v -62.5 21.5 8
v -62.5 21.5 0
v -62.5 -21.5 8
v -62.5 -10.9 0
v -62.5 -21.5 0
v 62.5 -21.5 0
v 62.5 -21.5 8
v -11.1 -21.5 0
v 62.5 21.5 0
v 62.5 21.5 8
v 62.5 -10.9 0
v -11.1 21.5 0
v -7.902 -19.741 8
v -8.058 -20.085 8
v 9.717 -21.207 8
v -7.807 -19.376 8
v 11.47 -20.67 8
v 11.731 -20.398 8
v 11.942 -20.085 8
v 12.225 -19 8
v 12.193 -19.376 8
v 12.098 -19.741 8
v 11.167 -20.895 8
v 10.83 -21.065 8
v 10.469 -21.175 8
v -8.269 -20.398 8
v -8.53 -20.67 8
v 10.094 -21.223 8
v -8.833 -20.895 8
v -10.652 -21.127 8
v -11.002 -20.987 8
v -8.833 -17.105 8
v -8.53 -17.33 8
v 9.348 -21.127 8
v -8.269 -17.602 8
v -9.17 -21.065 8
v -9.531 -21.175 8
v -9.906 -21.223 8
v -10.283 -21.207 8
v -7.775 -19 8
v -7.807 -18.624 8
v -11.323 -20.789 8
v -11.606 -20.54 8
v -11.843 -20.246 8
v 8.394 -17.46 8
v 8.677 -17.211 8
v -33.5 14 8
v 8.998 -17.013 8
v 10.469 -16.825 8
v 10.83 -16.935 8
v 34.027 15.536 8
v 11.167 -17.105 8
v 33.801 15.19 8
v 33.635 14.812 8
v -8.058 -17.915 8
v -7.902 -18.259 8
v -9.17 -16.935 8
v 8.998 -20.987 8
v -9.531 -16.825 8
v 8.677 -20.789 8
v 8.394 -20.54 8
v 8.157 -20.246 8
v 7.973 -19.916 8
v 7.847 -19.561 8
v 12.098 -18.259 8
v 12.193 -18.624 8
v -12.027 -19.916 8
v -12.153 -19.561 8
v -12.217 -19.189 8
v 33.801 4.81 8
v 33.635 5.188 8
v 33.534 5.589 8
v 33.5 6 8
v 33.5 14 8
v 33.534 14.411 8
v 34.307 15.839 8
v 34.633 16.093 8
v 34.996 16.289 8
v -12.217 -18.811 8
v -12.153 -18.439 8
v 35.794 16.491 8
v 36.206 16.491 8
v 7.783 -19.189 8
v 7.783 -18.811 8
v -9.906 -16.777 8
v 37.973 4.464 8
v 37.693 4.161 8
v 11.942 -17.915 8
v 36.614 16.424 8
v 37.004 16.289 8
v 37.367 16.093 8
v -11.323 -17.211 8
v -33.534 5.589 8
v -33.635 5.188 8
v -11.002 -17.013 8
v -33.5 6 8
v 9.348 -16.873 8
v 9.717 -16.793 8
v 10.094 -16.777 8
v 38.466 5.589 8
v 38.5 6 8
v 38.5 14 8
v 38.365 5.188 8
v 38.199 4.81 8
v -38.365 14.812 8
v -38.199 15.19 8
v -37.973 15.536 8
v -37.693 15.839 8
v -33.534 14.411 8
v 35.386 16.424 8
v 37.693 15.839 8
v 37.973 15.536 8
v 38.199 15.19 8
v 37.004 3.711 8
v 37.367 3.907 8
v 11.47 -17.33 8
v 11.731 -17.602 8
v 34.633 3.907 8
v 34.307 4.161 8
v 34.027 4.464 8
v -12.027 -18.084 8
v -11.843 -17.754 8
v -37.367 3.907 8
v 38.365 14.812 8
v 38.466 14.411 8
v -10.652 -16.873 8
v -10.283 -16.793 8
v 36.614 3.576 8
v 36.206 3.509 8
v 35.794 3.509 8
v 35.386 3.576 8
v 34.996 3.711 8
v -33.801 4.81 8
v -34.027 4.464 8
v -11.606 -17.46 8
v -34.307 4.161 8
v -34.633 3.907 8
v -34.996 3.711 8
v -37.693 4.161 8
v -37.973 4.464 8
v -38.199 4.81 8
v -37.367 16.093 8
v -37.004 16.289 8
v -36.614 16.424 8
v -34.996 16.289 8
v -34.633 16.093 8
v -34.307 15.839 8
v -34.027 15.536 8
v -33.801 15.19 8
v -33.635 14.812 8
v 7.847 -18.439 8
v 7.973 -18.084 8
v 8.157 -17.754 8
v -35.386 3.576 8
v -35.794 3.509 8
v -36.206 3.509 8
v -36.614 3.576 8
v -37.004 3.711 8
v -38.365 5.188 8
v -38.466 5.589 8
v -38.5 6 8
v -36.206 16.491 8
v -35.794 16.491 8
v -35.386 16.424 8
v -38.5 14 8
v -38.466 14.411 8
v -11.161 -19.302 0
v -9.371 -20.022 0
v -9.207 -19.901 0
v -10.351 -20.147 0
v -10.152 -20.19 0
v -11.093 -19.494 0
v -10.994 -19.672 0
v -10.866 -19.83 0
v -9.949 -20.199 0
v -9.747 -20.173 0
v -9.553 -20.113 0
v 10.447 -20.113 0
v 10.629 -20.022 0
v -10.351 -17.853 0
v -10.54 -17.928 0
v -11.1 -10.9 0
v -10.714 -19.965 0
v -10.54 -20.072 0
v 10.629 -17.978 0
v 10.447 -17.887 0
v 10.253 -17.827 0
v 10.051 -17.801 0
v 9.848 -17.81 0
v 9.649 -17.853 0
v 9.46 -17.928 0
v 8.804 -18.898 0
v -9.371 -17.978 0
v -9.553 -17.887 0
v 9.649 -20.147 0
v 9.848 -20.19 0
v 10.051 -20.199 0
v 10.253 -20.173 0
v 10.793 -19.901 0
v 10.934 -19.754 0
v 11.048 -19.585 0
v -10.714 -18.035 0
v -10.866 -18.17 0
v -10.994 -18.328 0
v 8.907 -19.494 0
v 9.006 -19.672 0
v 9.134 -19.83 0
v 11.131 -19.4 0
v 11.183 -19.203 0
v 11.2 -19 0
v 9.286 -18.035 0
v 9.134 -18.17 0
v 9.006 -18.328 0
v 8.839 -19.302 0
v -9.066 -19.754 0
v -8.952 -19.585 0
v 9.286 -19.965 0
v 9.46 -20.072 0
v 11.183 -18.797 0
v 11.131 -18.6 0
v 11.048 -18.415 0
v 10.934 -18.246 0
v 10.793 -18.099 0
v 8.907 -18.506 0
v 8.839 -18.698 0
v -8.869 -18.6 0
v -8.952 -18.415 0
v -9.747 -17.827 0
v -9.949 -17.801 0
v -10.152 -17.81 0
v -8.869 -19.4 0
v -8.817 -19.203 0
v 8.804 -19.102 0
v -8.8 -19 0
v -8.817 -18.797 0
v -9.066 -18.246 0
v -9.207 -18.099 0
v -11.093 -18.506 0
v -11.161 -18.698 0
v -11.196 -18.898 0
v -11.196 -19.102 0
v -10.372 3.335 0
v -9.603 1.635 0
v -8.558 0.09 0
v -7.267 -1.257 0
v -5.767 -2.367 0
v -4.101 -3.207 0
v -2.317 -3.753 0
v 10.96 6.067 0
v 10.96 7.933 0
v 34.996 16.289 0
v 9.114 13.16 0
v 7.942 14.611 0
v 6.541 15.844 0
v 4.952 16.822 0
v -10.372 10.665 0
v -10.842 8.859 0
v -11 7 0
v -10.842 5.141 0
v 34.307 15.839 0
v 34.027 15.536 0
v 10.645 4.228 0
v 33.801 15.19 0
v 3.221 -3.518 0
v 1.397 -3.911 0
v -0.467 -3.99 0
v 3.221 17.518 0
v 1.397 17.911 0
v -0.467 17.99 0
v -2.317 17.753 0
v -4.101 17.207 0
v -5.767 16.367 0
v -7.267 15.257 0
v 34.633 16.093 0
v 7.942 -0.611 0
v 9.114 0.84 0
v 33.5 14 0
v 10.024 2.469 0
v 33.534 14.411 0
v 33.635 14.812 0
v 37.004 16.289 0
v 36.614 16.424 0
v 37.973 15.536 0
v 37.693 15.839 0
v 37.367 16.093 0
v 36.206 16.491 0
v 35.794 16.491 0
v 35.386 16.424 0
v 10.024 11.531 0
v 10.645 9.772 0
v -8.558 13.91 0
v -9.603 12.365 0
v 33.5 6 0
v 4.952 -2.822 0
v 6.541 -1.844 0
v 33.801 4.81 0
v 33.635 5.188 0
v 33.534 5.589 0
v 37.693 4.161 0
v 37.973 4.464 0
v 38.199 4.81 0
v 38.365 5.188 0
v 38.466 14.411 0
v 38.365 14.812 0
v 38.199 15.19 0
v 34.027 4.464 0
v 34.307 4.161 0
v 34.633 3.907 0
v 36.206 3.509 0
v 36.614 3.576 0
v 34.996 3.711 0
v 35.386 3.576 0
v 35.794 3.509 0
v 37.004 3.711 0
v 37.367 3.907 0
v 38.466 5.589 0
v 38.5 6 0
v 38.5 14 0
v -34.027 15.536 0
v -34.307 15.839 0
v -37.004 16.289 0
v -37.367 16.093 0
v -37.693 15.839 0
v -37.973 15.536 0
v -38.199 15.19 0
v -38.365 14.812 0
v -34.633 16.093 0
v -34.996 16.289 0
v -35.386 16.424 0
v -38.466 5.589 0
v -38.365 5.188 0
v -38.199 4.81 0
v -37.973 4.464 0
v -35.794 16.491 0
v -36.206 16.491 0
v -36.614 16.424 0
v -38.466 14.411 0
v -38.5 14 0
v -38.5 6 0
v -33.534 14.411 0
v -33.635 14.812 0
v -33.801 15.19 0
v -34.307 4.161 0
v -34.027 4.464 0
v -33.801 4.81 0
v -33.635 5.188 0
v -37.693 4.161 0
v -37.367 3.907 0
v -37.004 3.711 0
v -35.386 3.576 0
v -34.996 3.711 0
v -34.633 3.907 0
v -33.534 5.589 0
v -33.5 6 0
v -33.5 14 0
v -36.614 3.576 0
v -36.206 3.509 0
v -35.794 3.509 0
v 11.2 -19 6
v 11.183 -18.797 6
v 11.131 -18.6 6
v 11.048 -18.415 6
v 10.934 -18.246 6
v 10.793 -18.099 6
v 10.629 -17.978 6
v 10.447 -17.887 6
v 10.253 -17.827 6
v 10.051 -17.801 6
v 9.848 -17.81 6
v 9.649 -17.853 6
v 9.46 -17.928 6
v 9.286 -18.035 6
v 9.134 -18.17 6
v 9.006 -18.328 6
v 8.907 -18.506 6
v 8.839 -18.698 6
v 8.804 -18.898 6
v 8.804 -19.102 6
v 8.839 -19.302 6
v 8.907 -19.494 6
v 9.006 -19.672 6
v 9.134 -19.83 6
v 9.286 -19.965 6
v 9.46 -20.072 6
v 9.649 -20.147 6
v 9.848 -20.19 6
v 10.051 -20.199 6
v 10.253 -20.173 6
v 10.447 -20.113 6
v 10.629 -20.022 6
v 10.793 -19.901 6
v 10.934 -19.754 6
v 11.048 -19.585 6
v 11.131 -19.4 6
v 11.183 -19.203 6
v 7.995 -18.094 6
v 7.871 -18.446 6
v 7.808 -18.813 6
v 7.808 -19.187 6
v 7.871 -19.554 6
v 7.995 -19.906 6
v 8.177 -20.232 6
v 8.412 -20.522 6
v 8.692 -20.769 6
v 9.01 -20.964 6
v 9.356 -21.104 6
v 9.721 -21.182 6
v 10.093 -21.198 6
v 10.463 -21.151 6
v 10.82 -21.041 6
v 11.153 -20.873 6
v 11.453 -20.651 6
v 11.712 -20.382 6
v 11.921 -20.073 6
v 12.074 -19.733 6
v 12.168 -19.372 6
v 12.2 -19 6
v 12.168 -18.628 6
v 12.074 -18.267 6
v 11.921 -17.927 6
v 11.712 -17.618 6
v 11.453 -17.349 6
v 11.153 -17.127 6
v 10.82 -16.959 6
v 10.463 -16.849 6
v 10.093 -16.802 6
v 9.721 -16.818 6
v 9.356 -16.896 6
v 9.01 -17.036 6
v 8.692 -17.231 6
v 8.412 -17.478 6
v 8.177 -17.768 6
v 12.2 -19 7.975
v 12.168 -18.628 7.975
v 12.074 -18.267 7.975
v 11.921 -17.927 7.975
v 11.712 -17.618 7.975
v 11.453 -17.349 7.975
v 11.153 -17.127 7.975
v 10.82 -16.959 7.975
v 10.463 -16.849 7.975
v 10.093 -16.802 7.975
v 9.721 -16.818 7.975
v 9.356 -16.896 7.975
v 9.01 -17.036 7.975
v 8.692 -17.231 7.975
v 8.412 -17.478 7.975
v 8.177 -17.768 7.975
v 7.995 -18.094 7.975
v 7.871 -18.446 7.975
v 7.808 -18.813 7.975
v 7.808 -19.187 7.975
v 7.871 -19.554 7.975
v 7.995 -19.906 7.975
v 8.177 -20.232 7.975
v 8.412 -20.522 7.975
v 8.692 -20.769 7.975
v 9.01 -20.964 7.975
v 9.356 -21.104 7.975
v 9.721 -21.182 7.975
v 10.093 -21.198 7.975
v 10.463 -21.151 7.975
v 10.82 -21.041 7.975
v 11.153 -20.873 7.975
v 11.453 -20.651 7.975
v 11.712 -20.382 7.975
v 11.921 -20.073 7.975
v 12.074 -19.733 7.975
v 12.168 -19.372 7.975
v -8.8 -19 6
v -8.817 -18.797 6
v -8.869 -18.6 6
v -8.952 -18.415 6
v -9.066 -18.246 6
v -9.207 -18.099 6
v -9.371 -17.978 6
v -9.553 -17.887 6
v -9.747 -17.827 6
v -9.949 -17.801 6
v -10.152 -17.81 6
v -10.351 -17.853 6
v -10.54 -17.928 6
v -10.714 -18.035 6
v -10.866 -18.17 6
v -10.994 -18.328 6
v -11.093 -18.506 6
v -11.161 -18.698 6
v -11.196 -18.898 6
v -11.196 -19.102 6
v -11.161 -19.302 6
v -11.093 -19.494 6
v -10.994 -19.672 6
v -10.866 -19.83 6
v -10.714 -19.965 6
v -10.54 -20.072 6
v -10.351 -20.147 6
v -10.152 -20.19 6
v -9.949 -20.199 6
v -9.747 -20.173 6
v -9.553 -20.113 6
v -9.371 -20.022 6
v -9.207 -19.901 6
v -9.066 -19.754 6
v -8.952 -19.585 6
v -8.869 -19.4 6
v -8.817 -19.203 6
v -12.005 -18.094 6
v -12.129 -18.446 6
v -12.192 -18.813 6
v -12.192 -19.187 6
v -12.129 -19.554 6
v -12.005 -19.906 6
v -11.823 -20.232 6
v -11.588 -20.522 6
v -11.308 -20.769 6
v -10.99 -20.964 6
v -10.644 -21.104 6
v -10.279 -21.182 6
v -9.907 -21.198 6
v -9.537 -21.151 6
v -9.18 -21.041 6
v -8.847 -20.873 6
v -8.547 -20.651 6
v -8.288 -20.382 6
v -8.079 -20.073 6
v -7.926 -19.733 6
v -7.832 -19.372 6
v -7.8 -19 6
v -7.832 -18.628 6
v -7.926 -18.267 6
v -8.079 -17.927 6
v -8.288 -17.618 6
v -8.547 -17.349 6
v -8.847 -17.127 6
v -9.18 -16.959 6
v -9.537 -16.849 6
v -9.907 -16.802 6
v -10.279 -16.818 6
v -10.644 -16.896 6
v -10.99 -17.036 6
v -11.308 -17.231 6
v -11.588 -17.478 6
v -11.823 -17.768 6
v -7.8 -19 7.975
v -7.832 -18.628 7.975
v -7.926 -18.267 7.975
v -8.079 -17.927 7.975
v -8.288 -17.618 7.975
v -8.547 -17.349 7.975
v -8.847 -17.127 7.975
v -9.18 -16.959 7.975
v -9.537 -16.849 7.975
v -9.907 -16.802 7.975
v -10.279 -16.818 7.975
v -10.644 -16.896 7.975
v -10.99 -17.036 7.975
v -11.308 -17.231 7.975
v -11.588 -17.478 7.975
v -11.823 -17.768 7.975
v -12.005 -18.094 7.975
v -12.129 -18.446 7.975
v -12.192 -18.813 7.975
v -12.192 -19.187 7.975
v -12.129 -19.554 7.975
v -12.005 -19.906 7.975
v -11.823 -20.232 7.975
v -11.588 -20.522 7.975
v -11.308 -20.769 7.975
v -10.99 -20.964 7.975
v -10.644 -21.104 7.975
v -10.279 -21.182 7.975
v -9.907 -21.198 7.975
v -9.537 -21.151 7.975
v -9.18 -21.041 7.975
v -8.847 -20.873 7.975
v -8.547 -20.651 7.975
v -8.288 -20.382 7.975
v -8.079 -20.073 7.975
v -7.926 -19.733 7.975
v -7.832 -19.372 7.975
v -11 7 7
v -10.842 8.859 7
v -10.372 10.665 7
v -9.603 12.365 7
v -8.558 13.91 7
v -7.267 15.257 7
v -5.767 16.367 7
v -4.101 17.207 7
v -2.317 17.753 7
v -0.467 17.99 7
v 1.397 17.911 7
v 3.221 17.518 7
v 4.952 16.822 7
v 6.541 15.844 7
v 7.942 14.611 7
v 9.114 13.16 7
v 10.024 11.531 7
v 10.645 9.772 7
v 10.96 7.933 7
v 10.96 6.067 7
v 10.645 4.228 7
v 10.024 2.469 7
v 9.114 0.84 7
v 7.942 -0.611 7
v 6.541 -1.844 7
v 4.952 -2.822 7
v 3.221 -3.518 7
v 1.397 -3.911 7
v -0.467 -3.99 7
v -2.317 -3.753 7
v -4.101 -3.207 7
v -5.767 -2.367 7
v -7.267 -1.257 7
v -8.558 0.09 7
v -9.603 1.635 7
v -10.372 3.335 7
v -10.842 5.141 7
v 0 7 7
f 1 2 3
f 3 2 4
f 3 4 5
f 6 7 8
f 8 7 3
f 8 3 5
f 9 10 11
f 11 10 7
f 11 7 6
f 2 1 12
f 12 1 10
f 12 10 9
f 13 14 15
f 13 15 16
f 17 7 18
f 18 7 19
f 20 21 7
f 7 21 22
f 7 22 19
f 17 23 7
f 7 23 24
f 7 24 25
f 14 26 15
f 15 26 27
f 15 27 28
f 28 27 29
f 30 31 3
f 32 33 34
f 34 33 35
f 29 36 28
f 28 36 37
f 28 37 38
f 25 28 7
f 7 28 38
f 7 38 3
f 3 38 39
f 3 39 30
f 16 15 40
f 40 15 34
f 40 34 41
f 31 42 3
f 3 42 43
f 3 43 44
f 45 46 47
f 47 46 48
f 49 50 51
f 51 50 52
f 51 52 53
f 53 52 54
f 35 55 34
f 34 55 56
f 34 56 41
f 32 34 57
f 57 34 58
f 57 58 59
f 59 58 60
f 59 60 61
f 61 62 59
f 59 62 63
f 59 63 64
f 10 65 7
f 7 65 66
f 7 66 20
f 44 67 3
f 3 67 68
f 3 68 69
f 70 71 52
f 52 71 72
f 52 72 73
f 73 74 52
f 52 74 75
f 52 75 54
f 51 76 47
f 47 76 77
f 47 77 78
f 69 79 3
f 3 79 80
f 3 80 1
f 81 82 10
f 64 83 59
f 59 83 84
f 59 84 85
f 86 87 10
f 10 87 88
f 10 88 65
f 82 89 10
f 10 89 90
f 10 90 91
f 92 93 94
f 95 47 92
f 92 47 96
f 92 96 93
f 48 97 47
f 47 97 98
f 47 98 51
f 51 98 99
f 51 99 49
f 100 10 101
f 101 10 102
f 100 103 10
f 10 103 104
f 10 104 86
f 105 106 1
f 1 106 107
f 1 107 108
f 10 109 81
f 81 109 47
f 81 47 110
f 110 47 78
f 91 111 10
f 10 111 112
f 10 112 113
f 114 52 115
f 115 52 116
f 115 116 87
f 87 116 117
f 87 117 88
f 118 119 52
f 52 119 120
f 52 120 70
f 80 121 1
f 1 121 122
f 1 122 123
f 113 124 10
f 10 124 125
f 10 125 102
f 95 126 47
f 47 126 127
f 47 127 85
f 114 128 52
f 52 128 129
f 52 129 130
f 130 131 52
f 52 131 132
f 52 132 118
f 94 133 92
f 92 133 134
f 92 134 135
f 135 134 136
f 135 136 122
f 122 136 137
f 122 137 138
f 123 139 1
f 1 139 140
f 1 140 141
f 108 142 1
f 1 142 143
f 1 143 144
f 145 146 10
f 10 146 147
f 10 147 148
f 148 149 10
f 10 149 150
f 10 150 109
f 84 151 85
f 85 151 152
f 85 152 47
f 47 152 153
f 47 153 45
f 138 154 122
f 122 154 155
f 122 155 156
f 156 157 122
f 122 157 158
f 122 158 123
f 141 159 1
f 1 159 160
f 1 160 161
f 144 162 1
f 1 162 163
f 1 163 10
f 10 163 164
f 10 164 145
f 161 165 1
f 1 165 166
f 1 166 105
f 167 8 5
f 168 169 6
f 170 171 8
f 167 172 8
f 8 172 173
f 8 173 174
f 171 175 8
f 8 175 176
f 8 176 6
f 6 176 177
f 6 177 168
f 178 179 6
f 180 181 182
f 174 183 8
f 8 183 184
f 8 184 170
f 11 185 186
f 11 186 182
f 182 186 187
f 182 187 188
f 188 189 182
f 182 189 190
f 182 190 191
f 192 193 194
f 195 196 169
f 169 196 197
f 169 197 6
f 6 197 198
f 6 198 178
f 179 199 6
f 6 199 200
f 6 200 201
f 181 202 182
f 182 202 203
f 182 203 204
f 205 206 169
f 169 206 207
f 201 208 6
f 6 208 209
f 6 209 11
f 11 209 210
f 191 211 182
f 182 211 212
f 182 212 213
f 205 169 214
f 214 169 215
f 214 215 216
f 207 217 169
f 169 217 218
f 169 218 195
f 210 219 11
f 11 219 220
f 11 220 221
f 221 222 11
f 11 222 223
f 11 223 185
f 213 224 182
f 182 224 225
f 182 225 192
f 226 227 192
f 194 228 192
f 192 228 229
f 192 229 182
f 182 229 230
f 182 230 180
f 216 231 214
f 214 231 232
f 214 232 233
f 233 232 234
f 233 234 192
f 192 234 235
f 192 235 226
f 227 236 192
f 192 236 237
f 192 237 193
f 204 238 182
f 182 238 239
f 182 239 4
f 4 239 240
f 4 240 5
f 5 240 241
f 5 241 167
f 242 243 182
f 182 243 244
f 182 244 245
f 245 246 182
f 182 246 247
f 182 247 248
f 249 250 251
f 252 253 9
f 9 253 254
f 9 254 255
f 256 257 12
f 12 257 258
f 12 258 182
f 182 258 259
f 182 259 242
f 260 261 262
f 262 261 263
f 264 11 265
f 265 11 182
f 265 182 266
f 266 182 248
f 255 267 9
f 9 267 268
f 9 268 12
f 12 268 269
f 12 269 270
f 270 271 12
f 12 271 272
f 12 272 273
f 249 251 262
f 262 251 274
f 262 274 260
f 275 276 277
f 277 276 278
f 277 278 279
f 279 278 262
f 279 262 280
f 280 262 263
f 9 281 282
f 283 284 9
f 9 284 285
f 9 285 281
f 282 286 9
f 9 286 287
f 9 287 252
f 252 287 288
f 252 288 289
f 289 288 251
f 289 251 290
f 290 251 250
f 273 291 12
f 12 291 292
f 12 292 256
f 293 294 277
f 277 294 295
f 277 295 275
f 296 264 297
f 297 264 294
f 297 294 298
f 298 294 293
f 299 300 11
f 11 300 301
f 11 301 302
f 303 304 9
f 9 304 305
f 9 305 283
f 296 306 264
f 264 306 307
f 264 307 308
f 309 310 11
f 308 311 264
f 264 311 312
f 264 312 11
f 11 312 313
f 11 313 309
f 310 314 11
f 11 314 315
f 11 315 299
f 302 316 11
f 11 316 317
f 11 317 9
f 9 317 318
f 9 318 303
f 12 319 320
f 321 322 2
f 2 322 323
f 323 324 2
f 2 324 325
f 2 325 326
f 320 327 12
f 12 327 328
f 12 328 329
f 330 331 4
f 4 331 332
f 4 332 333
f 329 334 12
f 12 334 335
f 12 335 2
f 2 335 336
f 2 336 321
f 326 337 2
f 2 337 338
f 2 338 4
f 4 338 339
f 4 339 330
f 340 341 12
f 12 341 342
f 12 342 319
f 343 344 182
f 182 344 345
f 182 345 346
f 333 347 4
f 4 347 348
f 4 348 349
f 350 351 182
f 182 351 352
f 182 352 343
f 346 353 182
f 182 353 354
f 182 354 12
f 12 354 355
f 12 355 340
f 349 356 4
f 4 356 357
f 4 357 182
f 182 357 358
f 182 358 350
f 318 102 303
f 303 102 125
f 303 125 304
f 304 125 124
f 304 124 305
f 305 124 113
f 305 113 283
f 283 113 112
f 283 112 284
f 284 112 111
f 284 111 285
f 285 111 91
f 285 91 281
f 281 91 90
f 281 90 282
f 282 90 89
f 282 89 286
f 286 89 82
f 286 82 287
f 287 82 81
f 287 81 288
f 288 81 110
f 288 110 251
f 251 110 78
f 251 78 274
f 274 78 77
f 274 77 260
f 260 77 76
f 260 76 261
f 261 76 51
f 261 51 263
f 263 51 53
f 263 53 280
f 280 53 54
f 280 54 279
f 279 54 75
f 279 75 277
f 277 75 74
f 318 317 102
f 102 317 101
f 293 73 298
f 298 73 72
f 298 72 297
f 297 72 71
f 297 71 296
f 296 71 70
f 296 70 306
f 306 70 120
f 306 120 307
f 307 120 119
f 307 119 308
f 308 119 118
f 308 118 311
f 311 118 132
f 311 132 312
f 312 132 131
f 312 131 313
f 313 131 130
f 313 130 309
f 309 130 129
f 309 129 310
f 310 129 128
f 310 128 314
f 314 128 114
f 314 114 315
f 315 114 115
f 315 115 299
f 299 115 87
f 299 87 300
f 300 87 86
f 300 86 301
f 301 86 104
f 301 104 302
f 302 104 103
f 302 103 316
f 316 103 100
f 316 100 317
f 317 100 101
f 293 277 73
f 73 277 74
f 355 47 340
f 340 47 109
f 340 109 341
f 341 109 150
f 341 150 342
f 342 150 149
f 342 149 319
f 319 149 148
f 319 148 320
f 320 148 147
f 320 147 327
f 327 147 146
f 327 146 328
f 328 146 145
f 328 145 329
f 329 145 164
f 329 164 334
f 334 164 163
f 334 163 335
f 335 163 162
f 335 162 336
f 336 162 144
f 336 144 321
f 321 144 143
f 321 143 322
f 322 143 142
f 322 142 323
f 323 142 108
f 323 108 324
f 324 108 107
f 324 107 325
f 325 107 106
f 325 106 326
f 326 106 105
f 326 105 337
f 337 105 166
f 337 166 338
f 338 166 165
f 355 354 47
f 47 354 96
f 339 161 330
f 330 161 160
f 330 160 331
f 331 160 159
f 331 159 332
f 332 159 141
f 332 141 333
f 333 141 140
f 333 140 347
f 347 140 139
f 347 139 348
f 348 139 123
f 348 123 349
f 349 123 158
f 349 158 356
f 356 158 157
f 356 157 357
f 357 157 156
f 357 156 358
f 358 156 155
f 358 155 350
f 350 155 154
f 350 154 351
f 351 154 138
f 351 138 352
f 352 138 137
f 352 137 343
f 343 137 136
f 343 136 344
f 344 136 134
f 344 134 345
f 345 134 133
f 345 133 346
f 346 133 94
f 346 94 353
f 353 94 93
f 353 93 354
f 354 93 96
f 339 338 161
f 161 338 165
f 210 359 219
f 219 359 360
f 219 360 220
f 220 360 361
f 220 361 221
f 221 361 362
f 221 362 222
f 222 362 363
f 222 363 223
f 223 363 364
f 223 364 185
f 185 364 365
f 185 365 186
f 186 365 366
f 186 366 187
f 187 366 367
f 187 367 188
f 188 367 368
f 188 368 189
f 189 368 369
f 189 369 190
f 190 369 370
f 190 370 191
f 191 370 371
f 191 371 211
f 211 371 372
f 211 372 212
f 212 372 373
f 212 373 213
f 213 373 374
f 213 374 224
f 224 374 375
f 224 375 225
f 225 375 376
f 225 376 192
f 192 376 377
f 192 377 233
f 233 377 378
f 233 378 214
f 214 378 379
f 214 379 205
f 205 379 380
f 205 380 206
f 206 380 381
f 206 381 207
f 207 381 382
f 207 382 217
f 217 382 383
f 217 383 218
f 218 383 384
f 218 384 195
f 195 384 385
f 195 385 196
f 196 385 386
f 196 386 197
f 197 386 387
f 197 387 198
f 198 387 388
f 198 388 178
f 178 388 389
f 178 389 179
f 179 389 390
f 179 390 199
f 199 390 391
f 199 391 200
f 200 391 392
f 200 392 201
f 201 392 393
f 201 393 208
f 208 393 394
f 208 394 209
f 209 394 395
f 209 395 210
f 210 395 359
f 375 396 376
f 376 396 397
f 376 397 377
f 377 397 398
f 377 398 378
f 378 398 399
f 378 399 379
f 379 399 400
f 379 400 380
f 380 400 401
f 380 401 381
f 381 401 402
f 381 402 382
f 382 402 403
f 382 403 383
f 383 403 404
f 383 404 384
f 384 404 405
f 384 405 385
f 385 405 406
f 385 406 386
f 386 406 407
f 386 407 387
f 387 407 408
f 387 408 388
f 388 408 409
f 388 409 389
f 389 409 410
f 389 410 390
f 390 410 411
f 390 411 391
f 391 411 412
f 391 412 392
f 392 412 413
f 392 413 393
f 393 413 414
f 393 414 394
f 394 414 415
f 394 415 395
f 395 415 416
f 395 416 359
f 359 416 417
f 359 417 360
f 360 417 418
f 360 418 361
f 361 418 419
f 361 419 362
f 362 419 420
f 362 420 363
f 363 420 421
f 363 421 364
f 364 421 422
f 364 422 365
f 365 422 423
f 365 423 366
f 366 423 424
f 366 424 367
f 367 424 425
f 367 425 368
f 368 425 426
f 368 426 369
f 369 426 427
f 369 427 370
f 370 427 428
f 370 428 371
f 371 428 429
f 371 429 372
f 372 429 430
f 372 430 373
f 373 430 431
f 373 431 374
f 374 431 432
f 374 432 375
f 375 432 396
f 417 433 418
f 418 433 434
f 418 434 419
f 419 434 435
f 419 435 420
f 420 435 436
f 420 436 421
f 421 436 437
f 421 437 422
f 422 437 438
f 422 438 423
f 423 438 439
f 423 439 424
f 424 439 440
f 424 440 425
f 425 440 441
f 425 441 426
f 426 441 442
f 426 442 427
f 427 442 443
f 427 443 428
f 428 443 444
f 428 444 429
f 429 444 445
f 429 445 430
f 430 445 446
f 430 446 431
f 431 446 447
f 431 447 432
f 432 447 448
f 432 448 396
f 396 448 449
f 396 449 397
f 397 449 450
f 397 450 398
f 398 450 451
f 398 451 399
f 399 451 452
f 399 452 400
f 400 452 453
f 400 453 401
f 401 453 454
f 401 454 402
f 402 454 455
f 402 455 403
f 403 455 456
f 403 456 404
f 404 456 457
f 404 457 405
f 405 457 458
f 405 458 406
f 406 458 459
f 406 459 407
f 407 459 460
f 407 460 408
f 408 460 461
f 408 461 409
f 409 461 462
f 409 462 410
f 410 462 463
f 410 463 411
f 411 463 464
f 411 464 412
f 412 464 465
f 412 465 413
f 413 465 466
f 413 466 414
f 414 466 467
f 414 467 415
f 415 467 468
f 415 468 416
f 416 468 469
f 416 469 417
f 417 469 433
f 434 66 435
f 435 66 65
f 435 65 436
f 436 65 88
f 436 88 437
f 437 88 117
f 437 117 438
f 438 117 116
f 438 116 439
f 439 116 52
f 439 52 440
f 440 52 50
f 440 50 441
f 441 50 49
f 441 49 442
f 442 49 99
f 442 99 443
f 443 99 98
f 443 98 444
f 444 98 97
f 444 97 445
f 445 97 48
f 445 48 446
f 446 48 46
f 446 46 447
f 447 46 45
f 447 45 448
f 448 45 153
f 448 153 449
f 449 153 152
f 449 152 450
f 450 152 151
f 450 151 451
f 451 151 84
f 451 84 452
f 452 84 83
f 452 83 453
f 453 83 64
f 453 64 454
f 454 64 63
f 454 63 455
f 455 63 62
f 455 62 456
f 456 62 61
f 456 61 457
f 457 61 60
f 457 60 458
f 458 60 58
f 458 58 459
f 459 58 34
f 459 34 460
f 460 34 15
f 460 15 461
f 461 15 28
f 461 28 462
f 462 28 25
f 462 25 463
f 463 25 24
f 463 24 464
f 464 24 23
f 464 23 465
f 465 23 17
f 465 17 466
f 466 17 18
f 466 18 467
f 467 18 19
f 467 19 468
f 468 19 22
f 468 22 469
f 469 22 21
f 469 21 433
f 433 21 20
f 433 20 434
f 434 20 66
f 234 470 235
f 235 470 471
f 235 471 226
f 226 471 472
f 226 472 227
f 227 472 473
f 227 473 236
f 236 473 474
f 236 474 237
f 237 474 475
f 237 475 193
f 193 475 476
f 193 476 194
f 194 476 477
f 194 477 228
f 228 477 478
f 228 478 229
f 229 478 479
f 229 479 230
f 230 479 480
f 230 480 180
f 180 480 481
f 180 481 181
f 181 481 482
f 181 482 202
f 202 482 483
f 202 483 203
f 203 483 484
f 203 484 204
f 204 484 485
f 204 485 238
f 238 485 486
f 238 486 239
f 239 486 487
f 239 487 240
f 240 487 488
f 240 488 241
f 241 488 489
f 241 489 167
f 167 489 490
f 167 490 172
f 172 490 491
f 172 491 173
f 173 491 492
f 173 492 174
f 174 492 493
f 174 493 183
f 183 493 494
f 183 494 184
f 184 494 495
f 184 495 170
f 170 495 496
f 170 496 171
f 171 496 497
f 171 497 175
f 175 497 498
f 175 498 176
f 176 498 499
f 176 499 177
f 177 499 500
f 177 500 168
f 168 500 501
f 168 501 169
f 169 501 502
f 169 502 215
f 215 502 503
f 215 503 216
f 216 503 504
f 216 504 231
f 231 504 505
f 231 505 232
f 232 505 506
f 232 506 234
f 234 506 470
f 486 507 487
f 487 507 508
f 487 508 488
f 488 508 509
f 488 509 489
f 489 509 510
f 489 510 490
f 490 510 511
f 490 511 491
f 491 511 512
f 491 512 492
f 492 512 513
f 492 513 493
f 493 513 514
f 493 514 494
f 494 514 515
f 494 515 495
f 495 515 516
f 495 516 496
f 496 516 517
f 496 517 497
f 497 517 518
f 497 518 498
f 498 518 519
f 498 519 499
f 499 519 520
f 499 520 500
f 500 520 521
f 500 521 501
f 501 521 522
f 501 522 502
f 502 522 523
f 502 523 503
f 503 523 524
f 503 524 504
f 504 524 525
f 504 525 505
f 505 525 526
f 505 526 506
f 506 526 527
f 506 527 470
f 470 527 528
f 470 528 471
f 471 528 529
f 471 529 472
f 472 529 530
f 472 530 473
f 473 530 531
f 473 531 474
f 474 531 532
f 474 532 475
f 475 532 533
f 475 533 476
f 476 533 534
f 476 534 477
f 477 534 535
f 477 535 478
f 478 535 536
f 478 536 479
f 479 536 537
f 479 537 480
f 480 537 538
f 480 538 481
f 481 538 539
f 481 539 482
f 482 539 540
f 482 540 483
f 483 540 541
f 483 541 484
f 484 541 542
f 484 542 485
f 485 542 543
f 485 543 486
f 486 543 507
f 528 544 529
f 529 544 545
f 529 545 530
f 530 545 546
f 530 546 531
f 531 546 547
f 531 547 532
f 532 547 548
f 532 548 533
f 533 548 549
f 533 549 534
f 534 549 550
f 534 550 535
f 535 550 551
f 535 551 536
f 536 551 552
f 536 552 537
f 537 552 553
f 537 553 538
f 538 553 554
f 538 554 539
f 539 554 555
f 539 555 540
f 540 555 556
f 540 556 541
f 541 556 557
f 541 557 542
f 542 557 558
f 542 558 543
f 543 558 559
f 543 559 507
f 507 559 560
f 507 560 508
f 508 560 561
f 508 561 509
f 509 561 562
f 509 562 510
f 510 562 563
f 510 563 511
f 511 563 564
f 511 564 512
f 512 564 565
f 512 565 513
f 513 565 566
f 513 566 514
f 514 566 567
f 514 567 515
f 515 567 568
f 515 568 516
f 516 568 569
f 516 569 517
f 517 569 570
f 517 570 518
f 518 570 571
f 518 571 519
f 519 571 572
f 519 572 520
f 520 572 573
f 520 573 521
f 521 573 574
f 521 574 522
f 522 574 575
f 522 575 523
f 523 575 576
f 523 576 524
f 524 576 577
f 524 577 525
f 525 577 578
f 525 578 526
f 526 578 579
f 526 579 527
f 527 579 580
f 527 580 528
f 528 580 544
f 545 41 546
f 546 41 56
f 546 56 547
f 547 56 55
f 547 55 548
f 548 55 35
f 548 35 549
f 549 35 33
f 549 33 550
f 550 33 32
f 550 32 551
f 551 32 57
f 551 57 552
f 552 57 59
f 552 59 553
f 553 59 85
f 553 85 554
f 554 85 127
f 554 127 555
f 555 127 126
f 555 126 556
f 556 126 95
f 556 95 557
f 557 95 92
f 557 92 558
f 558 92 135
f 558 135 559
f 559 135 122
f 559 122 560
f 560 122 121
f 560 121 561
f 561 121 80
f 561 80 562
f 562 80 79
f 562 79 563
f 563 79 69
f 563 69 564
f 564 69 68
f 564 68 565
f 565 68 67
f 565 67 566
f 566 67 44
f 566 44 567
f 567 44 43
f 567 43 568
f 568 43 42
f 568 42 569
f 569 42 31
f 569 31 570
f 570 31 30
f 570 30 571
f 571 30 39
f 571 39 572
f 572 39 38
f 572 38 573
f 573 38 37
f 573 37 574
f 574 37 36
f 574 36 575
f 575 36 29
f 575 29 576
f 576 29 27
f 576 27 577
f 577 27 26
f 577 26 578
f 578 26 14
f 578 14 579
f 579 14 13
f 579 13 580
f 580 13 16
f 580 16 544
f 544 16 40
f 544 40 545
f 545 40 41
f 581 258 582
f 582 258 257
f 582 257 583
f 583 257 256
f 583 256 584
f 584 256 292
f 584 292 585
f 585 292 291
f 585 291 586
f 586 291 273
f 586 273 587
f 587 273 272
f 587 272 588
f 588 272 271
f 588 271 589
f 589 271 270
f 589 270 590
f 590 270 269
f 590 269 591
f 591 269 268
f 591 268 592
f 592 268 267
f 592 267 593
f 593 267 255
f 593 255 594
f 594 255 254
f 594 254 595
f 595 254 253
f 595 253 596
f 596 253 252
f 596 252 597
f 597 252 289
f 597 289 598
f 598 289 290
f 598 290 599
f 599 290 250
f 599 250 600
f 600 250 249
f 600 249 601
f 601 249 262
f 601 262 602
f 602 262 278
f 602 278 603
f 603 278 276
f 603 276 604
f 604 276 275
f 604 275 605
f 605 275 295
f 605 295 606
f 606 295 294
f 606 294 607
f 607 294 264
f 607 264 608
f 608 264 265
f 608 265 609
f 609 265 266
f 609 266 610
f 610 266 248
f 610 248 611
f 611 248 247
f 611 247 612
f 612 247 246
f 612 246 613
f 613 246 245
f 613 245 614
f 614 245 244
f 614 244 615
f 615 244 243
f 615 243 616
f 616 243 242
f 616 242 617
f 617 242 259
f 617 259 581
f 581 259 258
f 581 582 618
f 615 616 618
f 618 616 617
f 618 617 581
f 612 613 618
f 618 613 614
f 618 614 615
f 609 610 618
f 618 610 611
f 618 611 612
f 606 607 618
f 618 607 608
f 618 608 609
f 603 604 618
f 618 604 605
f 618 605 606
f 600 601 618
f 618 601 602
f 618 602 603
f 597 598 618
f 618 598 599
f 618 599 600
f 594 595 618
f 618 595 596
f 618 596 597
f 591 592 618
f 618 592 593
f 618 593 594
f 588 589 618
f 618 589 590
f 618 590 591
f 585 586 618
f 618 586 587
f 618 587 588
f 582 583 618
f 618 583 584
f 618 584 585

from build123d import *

# Parameters (mm, degrees)
ESBO_O1_W                        = 125
ESBO_O1_H                        = 43
RESSALTO_EXTRUS_O1_DEPTH         = 8
CORTE_EXTRUS_O1_DEPTH            = 9
REBAIXO_PARA_SHCS_M21_AT_2_COUNT = 2
REBAIXO_PARA_SHCS_M21_AT_2_PITCH = 20
ESBO_O6_R                        = 11
CORTE_EXTRUS_O2_DEPTH            = 7


with BuildPart() as part:
    # Esboço1 → Ressalto-extrusão1 (new body)
    with BuildSketch(Plane.XY):
        Rectangle(ESBO_O1_W, ESBO_O1_H)
    extrude(amount=RESSALTO_EXTRUS_O1_DEPTH)

    # Esboço2 → Corte-extrusão1 (cut, through all)
    with BuildSketch(Plane.XY.offset(8)):
        with BuildLine():
            Line((-33.5, 6), (-33.5, 14))
            ThreePointArc((-33.5, 14), (-36, 16.5), (-38.5, 14))
            Line((-38.5, 14), (-38.5, 6))
            ThreePointArc((-38.5, 6), (-36, 3.5), (-33.5, 6))
        make_face()
        with BuildLine():
            Line((38.5, 6), (38.5, 14))
            ThreePointArc((38.5, 14), (36, 16.5), (33.5, 14))
            Line((33.5, 14), (33.5, 6))
            ThreePointArc((33.5, 6), (36, 3.5), (38.5, 6))
        make_face()
    extrude(amount=-CORTE_EXTRUS_O1_DEPTH, mode=Mode.SUBTRACT)

    # Esboço4 → Rebaixo para SHCS M21 (revolve, cut)
    with BuildSketch(Plane(origin=(-10, -19, 8), x_dir=(0, -1, 0), z_dir=(1, 0, 0))):
        Polygon((0, 0), (0, 8), (1.2, 8), (1.2, 2), (2.2, 2), (2.2, 0.025), (2.225, 0), align=None)
    rebaixo_para_shcs_m21 = revolve(axis=Axis((-10, -19, 14.35), (0, 0, -1)), mode=Mode.SUBTRACT)

    # Rebaixo para SHCS M21 at 2: Rebaixo para SHCS M21 ×2
    with Locations(*[(i * REBAIXO_PARA_SHCS_M21_AT_2_PITCH, 0, 0) for i in range(1, REBAIXO_PARA_SHCS_M21_AT_2_COUNT)]):
        add(rebaixo_para_shcs_m21, mode=Mode.SUBTRACT)

    # Esboço6 → Corte-extrusão2 (cut)
    with BuildSketch(Plane(origin=(0, 0, 0), x_dir=(-1, 0, 0), z_dir=(0, 0, -1))):
        with Locations((0, 7)):
            Circle(ESBO_O6_R)
    extrude(amount=-CORTE_EXTRUS_O2_DEPTH, mode=Mode.SUBTRACT)


solid = part.part
